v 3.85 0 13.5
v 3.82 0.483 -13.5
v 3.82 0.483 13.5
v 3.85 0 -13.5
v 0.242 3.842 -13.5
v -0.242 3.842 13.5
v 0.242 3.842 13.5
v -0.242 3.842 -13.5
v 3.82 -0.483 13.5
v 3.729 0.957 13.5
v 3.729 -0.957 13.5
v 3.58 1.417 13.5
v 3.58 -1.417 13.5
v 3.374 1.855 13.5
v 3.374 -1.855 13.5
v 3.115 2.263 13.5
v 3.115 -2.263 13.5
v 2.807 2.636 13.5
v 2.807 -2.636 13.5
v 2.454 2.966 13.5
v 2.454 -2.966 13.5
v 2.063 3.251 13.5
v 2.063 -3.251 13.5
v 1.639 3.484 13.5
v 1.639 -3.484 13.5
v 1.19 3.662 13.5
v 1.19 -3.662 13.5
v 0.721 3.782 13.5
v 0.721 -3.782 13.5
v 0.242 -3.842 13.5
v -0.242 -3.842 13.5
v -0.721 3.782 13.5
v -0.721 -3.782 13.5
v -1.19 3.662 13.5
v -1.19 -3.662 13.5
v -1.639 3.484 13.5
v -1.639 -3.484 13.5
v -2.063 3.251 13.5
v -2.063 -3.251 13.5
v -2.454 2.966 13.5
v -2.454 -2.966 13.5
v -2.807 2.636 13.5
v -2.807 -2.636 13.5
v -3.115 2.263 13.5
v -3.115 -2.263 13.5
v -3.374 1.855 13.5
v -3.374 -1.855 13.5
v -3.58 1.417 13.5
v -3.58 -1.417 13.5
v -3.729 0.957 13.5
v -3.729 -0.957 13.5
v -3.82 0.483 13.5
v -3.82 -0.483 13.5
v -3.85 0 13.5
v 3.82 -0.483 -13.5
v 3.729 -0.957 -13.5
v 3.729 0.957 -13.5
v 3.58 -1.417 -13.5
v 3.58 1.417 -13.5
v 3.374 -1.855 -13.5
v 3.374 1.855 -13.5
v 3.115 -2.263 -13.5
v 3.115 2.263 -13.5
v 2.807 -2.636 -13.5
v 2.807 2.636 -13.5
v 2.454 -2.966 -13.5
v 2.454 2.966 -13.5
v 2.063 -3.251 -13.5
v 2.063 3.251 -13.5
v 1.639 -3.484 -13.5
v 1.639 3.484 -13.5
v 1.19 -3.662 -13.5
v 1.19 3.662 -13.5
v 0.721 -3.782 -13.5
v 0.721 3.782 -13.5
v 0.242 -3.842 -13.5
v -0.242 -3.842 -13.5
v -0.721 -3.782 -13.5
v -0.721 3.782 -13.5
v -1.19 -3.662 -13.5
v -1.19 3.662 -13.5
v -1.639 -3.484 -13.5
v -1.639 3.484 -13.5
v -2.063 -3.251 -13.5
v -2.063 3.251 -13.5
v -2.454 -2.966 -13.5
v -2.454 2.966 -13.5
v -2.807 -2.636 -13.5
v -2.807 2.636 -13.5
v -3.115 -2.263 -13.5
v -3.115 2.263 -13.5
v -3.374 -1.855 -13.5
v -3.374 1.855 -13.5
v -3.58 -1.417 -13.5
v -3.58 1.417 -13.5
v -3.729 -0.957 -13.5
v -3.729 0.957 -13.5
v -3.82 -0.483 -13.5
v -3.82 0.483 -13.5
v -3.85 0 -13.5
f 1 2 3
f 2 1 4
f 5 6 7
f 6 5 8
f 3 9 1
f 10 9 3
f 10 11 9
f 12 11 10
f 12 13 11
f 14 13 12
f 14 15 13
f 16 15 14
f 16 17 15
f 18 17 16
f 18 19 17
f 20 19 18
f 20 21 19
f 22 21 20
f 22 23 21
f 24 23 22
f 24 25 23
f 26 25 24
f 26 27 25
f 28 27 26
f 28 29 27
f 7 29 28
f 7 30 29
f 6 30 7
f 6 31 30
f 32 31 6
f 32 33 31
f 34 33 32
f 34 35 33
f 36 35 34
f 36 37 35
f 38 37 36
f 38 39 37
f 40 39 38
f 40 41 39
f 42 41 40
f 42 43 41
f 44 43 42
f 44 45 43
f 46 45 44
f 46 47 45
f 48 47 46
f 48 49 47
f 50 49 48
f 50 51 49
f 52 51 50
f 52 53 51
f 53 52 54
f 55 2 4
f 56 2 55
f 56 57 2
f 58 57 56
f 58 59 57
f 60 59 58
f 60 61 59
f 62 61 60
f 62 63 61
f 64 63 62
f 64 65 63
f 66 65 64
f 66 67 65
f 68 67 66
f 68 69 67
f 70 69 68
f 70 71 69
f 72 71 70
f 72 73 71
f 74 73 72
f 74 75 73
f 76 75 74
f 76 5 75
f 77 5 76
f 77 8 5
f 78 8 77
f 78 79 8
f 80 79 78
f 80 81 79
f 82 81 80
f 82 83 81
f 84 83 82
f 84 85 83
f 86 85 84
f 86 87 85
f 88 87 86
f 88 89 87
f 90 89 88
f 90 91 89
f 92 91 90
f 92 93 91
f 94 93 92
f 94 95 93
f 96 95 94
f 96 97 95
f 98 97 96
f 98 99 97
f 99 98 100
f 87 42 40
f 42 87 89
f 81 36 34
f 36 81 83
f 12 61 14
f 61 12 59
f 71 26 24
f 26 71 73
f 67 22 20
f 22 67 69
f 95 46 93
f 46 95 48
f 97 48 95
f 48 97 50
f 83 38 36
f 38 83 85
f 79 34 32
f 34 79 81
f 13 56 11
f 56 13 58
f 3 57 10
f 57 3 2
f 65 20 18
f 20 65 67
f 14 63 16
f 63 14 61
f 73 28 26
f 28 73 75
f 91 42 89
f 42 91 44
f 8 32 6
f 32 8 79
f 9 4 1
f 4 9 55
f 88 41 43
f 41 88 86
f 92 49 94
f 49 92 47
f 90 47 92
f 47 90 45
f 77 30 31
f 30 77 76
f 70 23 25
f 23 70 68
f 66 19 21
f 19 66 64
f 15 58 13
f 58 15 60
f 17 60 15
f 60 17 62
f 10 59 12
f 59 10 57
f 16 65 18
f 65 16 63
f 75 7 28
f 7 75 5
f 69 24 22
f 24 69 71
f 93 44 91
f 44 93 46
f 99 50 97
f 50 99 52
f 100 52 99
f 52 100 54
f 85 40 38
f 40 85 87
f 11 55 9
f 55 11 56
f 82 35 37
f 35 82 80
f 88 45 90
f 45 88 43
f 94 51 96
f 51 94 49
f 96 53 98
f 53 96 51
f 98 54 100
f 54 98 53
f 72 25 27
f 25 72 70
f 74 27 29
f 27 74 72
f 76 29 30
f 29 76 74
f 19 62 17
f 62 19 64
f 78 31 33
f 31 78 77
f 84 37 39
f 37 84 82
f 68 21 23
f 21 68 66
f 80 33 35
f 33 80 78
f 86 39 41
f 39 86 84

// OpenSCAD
$fn = 50;


difference() {
	union() {
		translate(v = [0, 0, -13.5000000000]) {
			cylinder(h = 27, r = 3.8500000000);
		}
	}
	union() {
		translate(v = [0, 0, -100.0000000000]) {
			cylinder(h = 200, r = 0);
		}
	}
}
